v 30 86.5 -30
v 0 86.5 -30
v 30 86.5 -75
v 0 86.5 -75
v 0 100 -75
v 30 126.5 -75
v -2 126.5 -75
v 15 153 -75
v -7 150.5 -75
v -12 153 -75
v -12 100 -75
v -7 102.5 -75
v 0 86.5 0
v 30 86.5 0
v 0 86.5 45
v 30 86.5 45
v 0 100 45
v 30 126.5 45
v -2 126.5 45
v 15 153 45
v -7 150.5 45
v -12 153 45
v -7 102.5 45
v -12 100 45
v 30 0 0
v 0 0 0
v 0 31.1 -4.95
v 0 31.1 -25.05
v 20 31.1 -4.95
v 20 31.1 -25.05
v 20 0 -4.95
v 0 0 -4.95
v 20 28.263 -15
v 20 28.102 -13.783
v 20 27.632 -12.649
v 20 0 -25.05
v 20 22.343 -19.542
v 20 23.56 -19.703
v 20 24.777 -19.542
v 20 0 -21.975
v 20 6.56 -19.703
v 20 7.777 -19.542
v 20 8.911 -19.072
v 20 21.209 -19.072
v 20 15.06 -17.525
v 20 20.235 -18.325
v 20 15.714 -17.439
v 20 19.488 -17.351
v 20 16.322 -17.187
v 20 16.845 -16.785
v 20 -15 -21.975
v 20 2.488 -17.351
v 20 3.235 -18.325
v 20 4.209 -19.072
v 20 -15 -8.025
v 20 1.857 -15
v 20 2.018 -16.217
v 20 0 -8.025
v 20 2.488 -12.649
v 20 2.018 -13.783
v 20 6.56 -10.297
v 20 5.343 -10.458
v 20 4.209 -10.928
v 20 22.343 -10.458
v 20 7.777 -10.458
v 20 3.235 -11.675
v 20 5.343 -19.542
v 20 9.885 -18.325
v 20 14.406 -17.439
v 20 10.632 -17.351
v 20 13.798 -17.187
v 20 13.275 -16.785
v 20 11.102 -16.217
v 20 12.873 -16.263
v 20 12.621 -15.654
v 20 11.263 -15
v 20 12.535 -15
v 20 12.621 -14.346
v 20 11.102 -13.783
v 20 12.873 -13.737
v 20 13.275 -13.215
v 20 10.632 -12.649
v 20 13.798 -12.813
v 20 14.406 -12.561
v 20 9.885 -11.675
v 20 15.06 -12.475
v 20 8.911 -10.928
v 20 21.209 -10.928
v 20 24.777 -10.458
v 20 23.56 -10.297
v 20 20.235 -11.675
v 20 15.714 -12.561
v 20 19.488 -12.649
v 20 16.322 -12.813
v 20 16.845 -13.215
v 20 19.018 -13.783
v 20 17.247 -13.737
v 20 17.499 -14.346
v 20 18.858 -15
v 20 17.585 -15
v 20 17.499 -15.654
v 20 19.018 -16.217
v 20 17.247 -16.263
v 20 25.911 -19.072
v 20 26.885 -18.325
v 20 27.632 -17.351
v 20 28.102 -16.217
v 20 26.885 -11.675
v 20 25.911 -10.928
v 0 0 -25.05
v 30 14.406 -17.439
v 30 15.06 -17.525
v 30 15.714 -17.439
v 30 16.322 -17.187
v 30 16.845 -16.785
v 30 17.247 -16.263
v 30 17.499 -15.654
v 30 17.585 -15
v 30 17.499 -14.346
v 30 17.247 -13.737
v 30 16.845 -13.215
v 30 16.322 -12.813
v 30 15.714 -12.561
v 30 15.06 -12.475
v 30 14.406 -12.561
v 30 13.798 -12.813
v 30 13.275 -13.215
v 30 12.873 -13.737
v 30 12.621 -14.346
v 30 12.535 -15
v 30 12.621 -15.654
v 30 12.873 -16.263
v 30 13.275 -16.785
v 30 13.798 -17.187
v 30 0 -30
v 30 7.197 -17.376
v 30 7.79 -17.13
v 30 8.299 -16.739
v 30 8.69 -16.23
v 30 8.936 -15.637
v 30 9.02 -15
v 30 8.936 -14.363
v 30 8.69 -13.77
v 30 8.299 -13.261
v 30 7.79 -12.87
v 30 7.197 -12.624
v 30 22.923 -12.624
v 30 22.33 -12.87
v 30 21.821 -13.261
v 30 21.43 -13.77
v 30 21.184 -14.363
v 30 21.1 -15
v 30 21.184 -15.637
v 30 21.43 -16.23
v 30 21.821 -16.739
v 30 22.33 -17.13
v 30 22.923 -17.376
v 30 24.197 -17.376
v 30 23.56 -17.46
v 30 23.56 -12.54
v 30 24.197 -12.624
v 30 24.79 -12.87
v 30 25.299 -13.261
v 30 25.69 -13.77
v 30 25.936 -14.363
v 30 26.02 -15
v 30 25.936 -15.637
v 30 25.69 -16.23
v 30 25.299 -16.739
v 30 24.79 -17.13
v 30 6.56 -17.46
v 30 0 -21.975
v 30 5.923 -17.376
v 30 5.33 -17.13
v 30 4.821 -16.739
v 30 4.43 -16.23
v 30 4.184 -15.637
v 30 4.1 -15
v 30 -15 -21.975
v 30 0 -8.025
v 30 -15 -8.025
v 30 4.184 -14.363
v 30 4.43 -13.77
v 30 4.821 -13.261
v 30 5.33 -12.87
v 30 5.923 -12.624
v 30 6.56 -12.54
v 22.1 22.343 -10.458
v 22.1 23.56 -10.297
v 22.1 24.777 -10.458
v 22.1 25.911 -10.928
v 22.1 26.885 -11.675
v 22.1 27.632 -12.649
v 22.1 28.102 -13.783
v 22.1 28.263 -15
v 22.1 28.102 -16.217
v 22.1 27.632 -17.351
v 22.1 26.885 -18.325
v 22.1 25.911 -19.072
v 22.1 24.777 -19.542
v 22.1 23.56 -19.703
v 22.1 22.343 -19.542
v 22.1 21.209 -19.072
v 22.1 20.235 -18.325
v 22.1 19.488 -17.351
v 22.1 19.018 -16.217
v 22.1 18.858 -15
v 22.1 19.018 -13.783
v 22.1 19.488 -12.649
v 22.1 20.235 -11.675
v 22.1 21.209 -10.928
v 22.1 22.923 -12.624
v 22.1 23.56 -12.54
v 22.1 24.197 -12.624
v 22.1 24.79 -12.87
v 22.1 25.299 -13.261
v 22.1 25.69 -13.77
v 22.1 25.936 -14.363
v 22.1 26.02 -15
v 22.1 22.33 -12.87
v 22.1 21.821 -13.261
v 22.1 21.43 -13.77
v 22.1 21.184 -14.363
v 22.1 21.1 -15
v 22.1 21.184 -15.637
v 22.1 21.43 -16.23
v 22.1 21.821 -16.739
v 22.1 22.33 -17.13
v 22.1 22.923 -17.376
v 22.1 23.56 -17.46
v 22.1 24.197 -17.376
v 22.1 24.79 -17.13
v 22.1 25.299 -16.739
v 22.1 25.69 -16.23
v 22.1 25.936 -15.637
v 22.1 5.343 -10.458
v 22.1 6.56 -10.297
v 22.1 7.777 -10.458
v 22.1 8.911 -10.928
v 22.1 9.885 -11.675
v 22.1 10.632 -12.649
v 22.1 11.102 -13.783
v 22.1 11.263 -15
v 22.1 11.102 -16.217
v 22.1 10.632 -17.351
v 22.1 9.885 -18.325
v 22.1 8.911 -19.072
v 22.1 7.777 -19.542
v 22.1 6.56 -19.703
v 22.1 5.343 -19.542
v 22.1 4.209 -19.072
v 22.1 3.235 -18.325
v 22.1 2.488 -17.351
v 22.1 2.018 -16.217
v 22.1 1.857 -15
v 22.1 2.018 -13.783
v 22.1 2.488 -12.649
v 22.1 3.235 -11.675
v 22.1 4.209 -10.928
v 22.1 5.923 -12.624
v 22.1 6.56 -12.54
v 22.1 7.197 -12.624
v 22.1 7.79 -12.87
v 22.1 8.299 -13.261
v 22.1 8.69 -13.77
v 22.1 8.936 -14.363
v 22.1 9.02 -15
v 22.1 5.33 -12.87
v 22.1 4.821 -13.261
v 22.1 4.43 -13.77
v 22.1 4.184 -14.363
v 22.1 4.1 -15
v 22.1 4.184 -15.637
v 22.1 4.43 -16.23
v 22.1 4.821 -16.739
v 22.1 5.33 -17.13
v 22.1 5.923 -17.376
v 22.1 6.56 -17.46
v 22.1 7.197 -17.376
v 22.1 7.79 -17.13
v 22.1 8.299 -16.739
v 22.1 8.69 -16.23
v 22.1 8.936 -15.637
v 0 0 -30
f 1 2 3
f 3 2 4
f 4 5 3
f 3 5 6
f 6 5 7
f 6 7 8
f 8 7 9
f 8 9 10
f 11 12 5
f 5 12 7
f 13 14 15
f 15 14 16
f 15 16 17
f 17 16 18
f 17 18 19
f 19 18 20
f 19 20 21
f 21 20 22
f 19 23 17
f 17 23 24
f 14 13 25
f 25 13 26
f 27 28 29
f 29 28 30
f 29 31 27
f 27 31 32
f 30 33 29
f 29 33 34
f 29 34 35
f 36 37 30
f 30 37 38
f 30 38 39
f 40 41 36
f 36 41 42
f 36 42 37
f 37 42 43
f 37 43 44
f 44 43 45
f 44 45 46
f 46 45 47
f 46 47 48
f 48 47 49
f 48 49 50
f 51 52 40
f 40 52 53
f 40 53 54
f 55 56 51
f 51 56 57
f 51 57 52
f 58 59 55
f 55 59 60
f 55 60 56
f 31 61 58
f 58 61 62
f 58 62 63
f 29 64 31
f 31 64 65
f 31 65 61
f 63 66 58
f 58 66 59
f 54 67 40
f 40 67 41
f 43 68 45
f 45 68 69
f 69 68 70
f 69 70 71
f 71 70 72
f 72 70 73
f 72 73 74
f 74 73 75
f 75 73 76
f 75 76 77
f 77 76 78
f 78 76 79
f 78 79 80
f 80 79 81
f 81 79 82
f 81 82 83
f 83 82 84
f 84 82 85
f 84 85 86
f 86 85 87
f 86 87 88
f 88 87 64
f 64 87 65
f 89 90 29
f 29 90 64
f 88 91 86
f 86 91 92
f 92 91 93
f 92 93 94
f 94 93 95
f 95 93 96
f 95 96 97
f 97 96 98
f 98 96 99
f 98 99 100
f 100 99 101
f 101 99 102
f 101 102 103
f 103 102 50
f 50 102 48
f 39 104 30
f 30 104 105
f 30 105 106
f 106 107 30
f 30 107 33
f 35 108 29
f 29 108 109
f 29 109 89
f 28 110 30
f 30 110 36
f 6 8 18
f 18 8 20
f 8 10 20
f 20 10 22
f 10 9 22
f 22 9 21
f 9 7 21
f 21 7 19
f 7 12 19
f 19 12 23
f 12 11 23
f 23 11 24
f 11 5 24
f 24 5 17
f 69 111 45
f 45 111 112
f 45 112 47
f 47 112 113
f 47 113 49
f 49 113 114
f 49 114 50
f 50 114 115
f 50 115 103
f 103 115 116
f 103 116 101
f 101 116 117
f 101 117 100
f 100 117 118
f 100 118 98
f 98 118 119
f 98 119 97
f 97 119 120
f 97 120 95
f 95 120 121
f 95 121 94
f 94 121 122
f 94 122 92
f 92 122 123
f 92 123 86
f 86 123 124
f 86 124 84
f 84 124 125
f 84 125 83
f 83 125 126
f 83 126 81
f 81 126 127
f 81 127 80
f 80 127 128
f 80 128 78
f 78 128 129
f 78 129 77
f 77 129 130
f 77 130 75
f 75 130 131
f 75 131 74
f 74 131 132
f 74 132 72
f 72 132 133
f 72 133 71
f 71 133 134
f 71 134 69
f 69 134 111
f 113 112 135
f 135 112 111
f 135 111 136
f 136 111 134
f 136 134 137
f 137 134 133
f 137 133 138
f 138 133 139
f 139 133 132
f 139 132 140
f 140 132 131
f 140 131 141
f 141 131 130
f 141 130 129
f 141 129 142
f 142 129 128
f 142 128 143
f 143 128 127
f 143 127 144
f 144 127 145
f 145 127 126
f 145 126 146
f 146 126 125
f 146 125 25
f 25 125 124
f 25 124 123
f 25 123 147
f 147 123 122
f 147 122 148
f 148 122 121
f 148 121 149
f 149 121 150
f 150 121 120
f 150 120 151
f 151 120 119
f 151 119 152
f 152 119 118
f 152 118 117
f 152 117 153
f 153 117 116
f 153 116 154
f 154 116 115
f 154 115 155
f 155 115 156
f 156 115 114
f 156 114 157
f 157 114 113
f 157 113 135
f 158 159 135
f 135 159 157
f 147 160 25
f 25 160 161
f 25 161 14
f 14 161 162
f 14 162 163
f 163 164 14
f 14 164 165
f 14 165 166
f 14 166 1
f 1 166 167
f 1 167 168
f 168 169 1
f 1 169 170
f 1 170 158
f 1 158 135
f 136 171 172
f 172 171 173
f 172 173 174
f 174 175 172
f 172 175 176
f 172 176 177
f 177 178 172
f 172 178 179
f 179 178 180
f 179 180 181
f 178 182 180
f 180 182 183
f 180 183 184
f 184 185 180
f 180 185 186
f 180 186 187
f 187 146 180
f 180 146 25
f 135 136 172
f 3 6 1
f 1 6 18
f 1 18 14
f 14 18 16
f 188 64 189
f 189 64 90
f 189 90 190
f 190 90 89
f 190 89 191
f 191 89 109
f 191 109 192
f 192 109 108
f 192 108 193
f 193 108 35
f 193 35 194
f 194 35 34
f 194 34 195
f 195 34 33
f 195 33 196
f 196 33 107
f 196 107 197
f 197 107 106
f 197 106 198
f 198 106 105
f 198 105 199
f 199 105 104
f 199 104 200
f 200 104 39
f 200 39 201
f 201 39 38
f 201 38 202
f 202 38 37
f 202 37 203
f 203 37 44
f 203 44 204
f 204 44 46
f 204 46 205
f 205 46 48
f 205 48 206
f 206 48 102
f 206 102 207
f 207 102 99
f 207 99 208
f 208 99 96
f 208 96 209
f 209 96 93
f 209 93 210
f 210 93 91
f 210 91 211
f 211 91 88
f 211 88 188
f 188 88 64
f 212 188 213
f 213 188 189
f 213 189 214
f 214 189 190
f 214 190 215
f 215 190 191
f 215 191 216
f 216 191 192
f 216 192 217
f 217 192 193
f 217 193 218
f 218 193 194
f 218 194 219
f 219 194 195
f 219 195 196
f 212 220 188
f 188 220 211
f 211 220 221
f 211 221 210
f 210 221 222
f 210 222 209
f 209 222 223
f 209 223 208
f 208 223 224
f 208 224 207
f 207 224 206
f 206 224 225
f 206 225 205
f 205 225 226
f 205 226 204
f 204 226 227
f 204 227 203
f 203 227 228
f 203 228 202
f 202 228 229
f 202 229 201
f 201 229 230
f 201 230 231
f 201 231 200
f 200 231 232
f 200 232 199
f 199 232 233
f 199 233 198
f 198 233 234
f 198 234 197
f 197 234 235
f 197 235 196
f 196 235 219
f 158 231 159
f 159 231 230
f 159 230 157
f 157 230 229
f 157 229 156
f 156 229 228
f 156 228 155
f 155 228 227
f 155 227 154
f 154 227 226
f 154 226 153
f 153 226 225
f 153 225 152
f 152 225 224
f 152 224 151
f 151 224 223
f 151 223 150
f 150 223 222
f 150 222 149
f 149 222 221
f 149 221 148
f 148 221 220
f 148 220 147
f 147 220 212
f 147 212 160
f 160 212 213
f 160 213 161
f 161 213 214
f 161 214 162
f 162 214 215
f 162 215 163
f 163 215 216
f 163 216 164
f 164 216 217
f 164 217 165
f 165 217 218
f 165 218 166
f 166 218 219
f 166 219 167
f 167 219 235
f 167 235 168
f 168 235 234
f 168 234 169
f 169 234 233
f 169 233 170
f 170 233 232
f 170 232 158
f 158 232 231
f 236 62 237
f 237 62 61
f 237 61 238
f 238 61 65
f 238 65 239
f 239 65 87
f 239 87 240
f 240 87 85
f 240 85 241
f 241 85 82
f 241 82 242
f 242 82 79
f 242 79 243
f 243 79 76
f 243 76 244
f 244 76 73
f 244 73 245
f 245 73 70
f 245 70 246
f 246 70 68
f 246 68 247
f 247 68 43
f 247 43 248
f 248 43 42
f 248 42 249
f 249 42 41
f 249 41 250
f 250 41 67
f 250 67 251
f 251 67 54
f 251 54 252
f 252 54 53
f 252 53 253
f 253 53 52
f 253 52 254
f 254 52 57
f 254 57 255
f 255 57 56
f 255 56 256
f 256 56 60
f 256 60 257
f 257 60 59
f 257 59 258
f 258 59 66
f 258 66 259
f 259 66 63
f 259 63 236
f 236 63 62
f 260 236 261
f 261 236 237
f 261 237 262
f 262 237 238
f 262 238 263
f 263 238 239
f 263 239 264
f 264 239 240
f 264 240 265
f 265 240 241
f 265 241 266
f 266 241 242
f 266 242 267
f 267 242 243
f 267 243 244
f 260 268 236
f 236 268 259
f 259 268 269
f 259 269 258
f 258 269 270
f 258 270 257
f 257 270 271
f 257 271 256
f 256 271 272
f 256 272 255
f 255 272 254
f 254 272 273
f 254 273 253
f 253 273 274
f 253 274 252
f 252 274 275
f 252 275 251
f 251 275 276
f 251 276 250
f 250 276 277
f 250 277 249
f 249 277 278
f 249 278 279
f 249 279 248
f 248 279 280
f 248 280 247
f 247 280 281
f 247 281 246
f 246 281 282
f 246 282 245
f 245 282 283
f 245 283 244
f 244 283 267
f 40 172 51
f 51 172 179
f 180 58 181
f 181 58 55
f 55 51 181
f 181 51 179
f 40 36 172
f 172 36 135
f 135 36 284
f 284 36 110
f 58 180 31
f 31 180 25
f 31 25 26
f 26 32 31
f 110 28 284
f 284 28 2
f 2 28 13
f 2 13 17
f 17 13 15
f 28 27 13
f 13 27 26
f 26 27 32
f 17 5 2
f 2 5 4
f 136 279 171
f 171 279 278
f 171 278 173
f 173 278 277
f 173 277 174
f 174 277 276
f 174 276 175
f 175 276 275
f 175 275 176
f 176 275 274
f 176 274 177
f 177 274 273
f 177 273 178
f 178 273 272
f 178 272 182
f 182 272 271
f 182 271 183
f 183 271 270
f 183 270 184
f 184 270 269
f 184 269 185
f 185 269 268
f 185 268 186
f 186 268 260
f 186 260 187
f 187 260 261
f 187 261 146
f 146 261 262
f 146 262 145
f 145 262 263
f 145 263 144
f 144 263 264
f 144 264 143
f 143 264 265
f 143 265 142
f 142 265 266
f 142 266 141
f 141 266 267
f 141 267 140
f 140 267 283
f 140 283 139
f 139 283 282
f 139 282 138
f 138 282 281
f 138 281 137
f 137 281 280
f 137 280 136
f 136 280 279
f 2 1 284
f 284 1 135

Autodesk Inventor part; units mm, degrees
ref_plane "YZ Plane" through (0, 0, 0) normal (1, 0, 0) x (0, 1, 0)
ref_plane "XZ Plane" through (0, 0, 0) normal (0, 1, 0) x (-1, 0, 0)
sketch "Sketch1" plane through (0, 0, 0) normal (0, 0, 1) x (1, 0, 0)
  line L0 (0, 0) -> (25, 0)
  line L1 (25, 0) -> (25, 40)
  line L2 (25, 40) -> (0, 40)
  line L3 (0, 40) -> (0, 0)
  dimension "d1" = 25
  dimension "d2" = 40
  dimension "d3" = 25
extrude "Extrusion1" add sketch "Sketch1" against normal blind 30
sketch "Sketch2" plane through (25, 0, 0) normal (1, 0, 0) x (0, 0, -1)
  line L0 (0, 0) -> (30, 0) projected
  circle A0 centre (15, 6.56) radius 2.46
extrude "Extrusion2" cut sketch "Sketch2" against normal blind 30
sketch "Sketch3" plane through (0, 0, 0) normal (-1, 0, 0) x (0, 0, 1)
  line L0 (0, 0) -> (-30, 0) projected
  line L1 (-25.05, 0) -> (-4.95, 0)
  line L2 (-4.95, 0) -> (-4.95, 33.12)
  line L3 (-4.95, 33.12) -> (-25.05, 33.12)
  line L4 (-25.05, 33.12) -> (-25.05, 0)
  dimension "d11" = 20.1
extrude "Extrusion3" cut sketch "Sketch3" against normal blind 20
sketch "Sketch4" plane through (0, 0, 0) normal (0, -1, 0) x (1, 0, 0)
  line L0 (20, -4.95) -> (20, -25.05) projected
  line L1 (20, -15) -> (25, -15)
  line L2 (25, 0) -> (25, -30) projected
  line L3 (20, -8.025) -> (25, -8.025)
  line L4 (25, -8.025) -> (25, -21.975)
  line L5 (25, -21.975) -> (20, -21.975)
  line L6 (20, -21.975) -> (20, -8.025)
  line L7 (20, -8.025) -> (25, -21.975) construction
  line L8 (25, -8.025) -> (20, -21.975) construction
  line L9 (25, -12.54) -> (25, -17.46) projected
  point P0 (0, 0)
  point P1 (22.5, -15)
  dimension "d14" = 13.95
extrude "Extrusion4" add sketch "Sketch4" along normal blind 15
sketch "Sketch5" plane through (20, 0, 0) normal (-1, 0, 0) x (0, 0, 1)
  circle A0 centre (-15, 6.56) radius 2.46 projected
  circle A1 centre (-15, 6.56) radius 4.7025
  circle A2 centre (-15, 6.56) radius 2.46 projected
  circle A3 centre (-15, 6.56) radius 2.46
  point P0 (0, 0)
  dimension "d17" = 9.405
extrude "Extrusion5" cut sketch "Sketch5" against normal blind 2.1
sketch "Sketch6" plane through (25, 0, 0) normal (1, 0, 0) x (0, 0, -1)
  circle A0 centre (15, 6.56) radius 4.7025 projected
  line L0 (15, 6.56) -> (15, 23.56)
  circle A1 centre (15, 23.56) radius 2.46
  point P0 (0, 0)
  dimension "d20" = 17
  dimension "d21" = 4.92
extrude "Extrusion6" cut sketch "Sketch6" against normal blind 10 contours A1
sketch "Sketch7" plane through (20, 0, 0) normal (-1, 0, 0) x (0, 0, 1)
  circle A0 centre (-15, 23.56) radius 2.46 projected
  circle A1 centre (-15, 23.56) radius 4.7025
  point P0 (0, 0)
  dimension "d24" = 9.405
extrude "Extrusion7" cut sketch "Sketch7" against normal blind 2.1
sketch "Sketch9" plane through (25, 0, 0) normal (1, 0, 0) x (0, 0, -1)
  circle A0 centre (15, 6.56) radius 2.46 projected
  circle A1 centre (15, 6.56) radius 2.46
  circle A2 centre (15, 23.56) radius 2.46 projected
  circle A3 centre (15, 23.56) radius 2.46
  line L0 (30, 40) -> (30, 0) projected
  line L1 (30, 0) -> (30, 40)
  line L2 (30, 40) -> (0, 40)
  line L3 (0, 40) -> (0, 0)
  line L4 (0, 0) -> (8.025, 0) projected
  line L5 (21.975, 0) -> (21.975, -15)
  line L6 (21.975, -15) -> (8.025, -15)
  line L7 (8.025, -15) -> (8.025, 0)
  line L8 (0, 0) -> (8.025, 0)
  line L9 (21.975, 0) -> (30, 0)
extrude "Extrusion8" add sketch "Sketch9" along normal blind 5
sketch "Sketch10" plane through (0, 40, 0) normal (0, 1, 0) x (1, 0, 0)
  line L0 (0, 30) -> (30, 30) projected
  line L1 (30, 0) -> (0, 0) projected
  line L2 (0, 30) -> (30, 30)
  line L3 (30, 30) -> (30, 0)
  line L4 (30, 0) -> (0, 0)
  line L5 (0, 0) -> (0, 30)
extrude "Extrusion9" add sketch "Sketch10" along normal blind 30
sketch "Sketch12" plane through (30, 0, 0) normal (1, 0, 0) x (0, 0, -1)
  circle A0 centre (15, 6.56) radius 2.46 projected
  line L0 (15, 6.56) -> (15, 15.06)
  circle A1 centre (15, 15.06) radius 2.525
  point P0 (0, 0)
  dimension "d31" = 8.5
  dimension "d33" = 5.05
extrude "Extrusion10" cut sketch "Sketch12" against normal blind 30 contours A1
sketch "Sketch14" plane through (0, 0, 0) normal (0, 0, 1) x (1, 0, 0)
  line L0 (30, 70) -> (0, 70) projected
  line L1 (0, 70) -> (0, 85)
  line L2 (30, 0) -> (30, 70) projected
  line L3 (30, 122.5) -> (30, 70)
  line L4 (30, 105) -> (30, 100)
  line L5 (-12, 153) -> (15, 153)
  line L6 (-7, 150.5) -> (-12, 153)
  line L7 (-7, 102.5) -> (-12, 100)
  line L8 (-7, 102.5) -> (-2, 126.5)
  line L9 (-2, 126.5) -> (-7, 150.5)
  line L10 (30, 126.5) -> (15, 153)
  line L11 (30, 122.5) -> (30, 126.5)
  line L12 (0, 85) -> (0, 100)
  line L13 (0, 100) -> (-12, 100)
  point P0 (0, 0)
  dimension "d90" = 12
extrude "Extrusion12" add sketch "Sketch14" against normal blind 30
sketch "Sketch15" plane through (0, 0, -25.05) normal (-1, 0, 0) x (0, 0, 1)
  line L0 (0, 33.12) -> (20.1, 33.12) projected
  line L1 (20.1, 33.12) -> (20.1, 0) projected
  line L2 (0, 33.12) -> (20.1, 33.12)
  line L3 (20.1, 33.12) -> (20.1, 31.1)
  line L4 (20.1, 31.1) -> (0, 31.1)
  line L5 (0, 31.1) -> (0, 33.12)
  point P0 (25.05, 0)
  dimension "d57" = 2.02
extrude "Extrusion13" add sketch "Sketch15" against normal blind 20
sketch "Sketch25" plane through (0, 0, 0) normal (0, 0, 1) x (1, 0, 0)
  line L0 (0, 100) -> (-12, 100) projected
  line L1 (0, 100) -> (-12, 100)
  line L2 (-12, 100) -> (-7, 102.5) projected
  line L3 (-12, 100) -> (-7, 102.5)
  line L4 (-7, 102.5) -> (-2, 126.5) projected
  line L5 (-7, 102.5) -> (-2, 126.5)
  line L6 (-2, 126.5) -> (-7, 150.5) projected
  line L7 (-2, 126.5) -> (-7, 150.5)
  line L8 (-7, 150.5) -> (-12, 153) projected
  line L9 (-7, 150.5) -> (-12, 153)
  line L10 (-12, 153) -> (15, 153) projected
  line L11 (-12, 153) -> (15, 153)
  line L12 (15, 153) -> (30, 126.5) projected
  line L13 (15, 153) -> (30, 126.5)
  line L14 (30, 126.5) -> (30, 86.5)
  line L15 (30, 0) -> (30, 126.5) projected
  line L16 (30, 86.5) -> (0, 86.5)
  line L17 (0, 100) -> (0, 0) projected
  line L18 (0, 86.5) -> (0, 100)
  dimension "d91" = 40
  dimension "d92" = 30
extrude "Extrusion14" add sketch "Sketch25" along normal blind 45
ref_plane "Work Plane1" through (0, 0, -15) normal (0, 0, 1) x (1, 0, 0)
mirror "Mirror1" about plane through (0, 0, -15) normal (0, 0, 1) of "Extrusion14"
properties part number "rec_b_48mm_x_120mm"
